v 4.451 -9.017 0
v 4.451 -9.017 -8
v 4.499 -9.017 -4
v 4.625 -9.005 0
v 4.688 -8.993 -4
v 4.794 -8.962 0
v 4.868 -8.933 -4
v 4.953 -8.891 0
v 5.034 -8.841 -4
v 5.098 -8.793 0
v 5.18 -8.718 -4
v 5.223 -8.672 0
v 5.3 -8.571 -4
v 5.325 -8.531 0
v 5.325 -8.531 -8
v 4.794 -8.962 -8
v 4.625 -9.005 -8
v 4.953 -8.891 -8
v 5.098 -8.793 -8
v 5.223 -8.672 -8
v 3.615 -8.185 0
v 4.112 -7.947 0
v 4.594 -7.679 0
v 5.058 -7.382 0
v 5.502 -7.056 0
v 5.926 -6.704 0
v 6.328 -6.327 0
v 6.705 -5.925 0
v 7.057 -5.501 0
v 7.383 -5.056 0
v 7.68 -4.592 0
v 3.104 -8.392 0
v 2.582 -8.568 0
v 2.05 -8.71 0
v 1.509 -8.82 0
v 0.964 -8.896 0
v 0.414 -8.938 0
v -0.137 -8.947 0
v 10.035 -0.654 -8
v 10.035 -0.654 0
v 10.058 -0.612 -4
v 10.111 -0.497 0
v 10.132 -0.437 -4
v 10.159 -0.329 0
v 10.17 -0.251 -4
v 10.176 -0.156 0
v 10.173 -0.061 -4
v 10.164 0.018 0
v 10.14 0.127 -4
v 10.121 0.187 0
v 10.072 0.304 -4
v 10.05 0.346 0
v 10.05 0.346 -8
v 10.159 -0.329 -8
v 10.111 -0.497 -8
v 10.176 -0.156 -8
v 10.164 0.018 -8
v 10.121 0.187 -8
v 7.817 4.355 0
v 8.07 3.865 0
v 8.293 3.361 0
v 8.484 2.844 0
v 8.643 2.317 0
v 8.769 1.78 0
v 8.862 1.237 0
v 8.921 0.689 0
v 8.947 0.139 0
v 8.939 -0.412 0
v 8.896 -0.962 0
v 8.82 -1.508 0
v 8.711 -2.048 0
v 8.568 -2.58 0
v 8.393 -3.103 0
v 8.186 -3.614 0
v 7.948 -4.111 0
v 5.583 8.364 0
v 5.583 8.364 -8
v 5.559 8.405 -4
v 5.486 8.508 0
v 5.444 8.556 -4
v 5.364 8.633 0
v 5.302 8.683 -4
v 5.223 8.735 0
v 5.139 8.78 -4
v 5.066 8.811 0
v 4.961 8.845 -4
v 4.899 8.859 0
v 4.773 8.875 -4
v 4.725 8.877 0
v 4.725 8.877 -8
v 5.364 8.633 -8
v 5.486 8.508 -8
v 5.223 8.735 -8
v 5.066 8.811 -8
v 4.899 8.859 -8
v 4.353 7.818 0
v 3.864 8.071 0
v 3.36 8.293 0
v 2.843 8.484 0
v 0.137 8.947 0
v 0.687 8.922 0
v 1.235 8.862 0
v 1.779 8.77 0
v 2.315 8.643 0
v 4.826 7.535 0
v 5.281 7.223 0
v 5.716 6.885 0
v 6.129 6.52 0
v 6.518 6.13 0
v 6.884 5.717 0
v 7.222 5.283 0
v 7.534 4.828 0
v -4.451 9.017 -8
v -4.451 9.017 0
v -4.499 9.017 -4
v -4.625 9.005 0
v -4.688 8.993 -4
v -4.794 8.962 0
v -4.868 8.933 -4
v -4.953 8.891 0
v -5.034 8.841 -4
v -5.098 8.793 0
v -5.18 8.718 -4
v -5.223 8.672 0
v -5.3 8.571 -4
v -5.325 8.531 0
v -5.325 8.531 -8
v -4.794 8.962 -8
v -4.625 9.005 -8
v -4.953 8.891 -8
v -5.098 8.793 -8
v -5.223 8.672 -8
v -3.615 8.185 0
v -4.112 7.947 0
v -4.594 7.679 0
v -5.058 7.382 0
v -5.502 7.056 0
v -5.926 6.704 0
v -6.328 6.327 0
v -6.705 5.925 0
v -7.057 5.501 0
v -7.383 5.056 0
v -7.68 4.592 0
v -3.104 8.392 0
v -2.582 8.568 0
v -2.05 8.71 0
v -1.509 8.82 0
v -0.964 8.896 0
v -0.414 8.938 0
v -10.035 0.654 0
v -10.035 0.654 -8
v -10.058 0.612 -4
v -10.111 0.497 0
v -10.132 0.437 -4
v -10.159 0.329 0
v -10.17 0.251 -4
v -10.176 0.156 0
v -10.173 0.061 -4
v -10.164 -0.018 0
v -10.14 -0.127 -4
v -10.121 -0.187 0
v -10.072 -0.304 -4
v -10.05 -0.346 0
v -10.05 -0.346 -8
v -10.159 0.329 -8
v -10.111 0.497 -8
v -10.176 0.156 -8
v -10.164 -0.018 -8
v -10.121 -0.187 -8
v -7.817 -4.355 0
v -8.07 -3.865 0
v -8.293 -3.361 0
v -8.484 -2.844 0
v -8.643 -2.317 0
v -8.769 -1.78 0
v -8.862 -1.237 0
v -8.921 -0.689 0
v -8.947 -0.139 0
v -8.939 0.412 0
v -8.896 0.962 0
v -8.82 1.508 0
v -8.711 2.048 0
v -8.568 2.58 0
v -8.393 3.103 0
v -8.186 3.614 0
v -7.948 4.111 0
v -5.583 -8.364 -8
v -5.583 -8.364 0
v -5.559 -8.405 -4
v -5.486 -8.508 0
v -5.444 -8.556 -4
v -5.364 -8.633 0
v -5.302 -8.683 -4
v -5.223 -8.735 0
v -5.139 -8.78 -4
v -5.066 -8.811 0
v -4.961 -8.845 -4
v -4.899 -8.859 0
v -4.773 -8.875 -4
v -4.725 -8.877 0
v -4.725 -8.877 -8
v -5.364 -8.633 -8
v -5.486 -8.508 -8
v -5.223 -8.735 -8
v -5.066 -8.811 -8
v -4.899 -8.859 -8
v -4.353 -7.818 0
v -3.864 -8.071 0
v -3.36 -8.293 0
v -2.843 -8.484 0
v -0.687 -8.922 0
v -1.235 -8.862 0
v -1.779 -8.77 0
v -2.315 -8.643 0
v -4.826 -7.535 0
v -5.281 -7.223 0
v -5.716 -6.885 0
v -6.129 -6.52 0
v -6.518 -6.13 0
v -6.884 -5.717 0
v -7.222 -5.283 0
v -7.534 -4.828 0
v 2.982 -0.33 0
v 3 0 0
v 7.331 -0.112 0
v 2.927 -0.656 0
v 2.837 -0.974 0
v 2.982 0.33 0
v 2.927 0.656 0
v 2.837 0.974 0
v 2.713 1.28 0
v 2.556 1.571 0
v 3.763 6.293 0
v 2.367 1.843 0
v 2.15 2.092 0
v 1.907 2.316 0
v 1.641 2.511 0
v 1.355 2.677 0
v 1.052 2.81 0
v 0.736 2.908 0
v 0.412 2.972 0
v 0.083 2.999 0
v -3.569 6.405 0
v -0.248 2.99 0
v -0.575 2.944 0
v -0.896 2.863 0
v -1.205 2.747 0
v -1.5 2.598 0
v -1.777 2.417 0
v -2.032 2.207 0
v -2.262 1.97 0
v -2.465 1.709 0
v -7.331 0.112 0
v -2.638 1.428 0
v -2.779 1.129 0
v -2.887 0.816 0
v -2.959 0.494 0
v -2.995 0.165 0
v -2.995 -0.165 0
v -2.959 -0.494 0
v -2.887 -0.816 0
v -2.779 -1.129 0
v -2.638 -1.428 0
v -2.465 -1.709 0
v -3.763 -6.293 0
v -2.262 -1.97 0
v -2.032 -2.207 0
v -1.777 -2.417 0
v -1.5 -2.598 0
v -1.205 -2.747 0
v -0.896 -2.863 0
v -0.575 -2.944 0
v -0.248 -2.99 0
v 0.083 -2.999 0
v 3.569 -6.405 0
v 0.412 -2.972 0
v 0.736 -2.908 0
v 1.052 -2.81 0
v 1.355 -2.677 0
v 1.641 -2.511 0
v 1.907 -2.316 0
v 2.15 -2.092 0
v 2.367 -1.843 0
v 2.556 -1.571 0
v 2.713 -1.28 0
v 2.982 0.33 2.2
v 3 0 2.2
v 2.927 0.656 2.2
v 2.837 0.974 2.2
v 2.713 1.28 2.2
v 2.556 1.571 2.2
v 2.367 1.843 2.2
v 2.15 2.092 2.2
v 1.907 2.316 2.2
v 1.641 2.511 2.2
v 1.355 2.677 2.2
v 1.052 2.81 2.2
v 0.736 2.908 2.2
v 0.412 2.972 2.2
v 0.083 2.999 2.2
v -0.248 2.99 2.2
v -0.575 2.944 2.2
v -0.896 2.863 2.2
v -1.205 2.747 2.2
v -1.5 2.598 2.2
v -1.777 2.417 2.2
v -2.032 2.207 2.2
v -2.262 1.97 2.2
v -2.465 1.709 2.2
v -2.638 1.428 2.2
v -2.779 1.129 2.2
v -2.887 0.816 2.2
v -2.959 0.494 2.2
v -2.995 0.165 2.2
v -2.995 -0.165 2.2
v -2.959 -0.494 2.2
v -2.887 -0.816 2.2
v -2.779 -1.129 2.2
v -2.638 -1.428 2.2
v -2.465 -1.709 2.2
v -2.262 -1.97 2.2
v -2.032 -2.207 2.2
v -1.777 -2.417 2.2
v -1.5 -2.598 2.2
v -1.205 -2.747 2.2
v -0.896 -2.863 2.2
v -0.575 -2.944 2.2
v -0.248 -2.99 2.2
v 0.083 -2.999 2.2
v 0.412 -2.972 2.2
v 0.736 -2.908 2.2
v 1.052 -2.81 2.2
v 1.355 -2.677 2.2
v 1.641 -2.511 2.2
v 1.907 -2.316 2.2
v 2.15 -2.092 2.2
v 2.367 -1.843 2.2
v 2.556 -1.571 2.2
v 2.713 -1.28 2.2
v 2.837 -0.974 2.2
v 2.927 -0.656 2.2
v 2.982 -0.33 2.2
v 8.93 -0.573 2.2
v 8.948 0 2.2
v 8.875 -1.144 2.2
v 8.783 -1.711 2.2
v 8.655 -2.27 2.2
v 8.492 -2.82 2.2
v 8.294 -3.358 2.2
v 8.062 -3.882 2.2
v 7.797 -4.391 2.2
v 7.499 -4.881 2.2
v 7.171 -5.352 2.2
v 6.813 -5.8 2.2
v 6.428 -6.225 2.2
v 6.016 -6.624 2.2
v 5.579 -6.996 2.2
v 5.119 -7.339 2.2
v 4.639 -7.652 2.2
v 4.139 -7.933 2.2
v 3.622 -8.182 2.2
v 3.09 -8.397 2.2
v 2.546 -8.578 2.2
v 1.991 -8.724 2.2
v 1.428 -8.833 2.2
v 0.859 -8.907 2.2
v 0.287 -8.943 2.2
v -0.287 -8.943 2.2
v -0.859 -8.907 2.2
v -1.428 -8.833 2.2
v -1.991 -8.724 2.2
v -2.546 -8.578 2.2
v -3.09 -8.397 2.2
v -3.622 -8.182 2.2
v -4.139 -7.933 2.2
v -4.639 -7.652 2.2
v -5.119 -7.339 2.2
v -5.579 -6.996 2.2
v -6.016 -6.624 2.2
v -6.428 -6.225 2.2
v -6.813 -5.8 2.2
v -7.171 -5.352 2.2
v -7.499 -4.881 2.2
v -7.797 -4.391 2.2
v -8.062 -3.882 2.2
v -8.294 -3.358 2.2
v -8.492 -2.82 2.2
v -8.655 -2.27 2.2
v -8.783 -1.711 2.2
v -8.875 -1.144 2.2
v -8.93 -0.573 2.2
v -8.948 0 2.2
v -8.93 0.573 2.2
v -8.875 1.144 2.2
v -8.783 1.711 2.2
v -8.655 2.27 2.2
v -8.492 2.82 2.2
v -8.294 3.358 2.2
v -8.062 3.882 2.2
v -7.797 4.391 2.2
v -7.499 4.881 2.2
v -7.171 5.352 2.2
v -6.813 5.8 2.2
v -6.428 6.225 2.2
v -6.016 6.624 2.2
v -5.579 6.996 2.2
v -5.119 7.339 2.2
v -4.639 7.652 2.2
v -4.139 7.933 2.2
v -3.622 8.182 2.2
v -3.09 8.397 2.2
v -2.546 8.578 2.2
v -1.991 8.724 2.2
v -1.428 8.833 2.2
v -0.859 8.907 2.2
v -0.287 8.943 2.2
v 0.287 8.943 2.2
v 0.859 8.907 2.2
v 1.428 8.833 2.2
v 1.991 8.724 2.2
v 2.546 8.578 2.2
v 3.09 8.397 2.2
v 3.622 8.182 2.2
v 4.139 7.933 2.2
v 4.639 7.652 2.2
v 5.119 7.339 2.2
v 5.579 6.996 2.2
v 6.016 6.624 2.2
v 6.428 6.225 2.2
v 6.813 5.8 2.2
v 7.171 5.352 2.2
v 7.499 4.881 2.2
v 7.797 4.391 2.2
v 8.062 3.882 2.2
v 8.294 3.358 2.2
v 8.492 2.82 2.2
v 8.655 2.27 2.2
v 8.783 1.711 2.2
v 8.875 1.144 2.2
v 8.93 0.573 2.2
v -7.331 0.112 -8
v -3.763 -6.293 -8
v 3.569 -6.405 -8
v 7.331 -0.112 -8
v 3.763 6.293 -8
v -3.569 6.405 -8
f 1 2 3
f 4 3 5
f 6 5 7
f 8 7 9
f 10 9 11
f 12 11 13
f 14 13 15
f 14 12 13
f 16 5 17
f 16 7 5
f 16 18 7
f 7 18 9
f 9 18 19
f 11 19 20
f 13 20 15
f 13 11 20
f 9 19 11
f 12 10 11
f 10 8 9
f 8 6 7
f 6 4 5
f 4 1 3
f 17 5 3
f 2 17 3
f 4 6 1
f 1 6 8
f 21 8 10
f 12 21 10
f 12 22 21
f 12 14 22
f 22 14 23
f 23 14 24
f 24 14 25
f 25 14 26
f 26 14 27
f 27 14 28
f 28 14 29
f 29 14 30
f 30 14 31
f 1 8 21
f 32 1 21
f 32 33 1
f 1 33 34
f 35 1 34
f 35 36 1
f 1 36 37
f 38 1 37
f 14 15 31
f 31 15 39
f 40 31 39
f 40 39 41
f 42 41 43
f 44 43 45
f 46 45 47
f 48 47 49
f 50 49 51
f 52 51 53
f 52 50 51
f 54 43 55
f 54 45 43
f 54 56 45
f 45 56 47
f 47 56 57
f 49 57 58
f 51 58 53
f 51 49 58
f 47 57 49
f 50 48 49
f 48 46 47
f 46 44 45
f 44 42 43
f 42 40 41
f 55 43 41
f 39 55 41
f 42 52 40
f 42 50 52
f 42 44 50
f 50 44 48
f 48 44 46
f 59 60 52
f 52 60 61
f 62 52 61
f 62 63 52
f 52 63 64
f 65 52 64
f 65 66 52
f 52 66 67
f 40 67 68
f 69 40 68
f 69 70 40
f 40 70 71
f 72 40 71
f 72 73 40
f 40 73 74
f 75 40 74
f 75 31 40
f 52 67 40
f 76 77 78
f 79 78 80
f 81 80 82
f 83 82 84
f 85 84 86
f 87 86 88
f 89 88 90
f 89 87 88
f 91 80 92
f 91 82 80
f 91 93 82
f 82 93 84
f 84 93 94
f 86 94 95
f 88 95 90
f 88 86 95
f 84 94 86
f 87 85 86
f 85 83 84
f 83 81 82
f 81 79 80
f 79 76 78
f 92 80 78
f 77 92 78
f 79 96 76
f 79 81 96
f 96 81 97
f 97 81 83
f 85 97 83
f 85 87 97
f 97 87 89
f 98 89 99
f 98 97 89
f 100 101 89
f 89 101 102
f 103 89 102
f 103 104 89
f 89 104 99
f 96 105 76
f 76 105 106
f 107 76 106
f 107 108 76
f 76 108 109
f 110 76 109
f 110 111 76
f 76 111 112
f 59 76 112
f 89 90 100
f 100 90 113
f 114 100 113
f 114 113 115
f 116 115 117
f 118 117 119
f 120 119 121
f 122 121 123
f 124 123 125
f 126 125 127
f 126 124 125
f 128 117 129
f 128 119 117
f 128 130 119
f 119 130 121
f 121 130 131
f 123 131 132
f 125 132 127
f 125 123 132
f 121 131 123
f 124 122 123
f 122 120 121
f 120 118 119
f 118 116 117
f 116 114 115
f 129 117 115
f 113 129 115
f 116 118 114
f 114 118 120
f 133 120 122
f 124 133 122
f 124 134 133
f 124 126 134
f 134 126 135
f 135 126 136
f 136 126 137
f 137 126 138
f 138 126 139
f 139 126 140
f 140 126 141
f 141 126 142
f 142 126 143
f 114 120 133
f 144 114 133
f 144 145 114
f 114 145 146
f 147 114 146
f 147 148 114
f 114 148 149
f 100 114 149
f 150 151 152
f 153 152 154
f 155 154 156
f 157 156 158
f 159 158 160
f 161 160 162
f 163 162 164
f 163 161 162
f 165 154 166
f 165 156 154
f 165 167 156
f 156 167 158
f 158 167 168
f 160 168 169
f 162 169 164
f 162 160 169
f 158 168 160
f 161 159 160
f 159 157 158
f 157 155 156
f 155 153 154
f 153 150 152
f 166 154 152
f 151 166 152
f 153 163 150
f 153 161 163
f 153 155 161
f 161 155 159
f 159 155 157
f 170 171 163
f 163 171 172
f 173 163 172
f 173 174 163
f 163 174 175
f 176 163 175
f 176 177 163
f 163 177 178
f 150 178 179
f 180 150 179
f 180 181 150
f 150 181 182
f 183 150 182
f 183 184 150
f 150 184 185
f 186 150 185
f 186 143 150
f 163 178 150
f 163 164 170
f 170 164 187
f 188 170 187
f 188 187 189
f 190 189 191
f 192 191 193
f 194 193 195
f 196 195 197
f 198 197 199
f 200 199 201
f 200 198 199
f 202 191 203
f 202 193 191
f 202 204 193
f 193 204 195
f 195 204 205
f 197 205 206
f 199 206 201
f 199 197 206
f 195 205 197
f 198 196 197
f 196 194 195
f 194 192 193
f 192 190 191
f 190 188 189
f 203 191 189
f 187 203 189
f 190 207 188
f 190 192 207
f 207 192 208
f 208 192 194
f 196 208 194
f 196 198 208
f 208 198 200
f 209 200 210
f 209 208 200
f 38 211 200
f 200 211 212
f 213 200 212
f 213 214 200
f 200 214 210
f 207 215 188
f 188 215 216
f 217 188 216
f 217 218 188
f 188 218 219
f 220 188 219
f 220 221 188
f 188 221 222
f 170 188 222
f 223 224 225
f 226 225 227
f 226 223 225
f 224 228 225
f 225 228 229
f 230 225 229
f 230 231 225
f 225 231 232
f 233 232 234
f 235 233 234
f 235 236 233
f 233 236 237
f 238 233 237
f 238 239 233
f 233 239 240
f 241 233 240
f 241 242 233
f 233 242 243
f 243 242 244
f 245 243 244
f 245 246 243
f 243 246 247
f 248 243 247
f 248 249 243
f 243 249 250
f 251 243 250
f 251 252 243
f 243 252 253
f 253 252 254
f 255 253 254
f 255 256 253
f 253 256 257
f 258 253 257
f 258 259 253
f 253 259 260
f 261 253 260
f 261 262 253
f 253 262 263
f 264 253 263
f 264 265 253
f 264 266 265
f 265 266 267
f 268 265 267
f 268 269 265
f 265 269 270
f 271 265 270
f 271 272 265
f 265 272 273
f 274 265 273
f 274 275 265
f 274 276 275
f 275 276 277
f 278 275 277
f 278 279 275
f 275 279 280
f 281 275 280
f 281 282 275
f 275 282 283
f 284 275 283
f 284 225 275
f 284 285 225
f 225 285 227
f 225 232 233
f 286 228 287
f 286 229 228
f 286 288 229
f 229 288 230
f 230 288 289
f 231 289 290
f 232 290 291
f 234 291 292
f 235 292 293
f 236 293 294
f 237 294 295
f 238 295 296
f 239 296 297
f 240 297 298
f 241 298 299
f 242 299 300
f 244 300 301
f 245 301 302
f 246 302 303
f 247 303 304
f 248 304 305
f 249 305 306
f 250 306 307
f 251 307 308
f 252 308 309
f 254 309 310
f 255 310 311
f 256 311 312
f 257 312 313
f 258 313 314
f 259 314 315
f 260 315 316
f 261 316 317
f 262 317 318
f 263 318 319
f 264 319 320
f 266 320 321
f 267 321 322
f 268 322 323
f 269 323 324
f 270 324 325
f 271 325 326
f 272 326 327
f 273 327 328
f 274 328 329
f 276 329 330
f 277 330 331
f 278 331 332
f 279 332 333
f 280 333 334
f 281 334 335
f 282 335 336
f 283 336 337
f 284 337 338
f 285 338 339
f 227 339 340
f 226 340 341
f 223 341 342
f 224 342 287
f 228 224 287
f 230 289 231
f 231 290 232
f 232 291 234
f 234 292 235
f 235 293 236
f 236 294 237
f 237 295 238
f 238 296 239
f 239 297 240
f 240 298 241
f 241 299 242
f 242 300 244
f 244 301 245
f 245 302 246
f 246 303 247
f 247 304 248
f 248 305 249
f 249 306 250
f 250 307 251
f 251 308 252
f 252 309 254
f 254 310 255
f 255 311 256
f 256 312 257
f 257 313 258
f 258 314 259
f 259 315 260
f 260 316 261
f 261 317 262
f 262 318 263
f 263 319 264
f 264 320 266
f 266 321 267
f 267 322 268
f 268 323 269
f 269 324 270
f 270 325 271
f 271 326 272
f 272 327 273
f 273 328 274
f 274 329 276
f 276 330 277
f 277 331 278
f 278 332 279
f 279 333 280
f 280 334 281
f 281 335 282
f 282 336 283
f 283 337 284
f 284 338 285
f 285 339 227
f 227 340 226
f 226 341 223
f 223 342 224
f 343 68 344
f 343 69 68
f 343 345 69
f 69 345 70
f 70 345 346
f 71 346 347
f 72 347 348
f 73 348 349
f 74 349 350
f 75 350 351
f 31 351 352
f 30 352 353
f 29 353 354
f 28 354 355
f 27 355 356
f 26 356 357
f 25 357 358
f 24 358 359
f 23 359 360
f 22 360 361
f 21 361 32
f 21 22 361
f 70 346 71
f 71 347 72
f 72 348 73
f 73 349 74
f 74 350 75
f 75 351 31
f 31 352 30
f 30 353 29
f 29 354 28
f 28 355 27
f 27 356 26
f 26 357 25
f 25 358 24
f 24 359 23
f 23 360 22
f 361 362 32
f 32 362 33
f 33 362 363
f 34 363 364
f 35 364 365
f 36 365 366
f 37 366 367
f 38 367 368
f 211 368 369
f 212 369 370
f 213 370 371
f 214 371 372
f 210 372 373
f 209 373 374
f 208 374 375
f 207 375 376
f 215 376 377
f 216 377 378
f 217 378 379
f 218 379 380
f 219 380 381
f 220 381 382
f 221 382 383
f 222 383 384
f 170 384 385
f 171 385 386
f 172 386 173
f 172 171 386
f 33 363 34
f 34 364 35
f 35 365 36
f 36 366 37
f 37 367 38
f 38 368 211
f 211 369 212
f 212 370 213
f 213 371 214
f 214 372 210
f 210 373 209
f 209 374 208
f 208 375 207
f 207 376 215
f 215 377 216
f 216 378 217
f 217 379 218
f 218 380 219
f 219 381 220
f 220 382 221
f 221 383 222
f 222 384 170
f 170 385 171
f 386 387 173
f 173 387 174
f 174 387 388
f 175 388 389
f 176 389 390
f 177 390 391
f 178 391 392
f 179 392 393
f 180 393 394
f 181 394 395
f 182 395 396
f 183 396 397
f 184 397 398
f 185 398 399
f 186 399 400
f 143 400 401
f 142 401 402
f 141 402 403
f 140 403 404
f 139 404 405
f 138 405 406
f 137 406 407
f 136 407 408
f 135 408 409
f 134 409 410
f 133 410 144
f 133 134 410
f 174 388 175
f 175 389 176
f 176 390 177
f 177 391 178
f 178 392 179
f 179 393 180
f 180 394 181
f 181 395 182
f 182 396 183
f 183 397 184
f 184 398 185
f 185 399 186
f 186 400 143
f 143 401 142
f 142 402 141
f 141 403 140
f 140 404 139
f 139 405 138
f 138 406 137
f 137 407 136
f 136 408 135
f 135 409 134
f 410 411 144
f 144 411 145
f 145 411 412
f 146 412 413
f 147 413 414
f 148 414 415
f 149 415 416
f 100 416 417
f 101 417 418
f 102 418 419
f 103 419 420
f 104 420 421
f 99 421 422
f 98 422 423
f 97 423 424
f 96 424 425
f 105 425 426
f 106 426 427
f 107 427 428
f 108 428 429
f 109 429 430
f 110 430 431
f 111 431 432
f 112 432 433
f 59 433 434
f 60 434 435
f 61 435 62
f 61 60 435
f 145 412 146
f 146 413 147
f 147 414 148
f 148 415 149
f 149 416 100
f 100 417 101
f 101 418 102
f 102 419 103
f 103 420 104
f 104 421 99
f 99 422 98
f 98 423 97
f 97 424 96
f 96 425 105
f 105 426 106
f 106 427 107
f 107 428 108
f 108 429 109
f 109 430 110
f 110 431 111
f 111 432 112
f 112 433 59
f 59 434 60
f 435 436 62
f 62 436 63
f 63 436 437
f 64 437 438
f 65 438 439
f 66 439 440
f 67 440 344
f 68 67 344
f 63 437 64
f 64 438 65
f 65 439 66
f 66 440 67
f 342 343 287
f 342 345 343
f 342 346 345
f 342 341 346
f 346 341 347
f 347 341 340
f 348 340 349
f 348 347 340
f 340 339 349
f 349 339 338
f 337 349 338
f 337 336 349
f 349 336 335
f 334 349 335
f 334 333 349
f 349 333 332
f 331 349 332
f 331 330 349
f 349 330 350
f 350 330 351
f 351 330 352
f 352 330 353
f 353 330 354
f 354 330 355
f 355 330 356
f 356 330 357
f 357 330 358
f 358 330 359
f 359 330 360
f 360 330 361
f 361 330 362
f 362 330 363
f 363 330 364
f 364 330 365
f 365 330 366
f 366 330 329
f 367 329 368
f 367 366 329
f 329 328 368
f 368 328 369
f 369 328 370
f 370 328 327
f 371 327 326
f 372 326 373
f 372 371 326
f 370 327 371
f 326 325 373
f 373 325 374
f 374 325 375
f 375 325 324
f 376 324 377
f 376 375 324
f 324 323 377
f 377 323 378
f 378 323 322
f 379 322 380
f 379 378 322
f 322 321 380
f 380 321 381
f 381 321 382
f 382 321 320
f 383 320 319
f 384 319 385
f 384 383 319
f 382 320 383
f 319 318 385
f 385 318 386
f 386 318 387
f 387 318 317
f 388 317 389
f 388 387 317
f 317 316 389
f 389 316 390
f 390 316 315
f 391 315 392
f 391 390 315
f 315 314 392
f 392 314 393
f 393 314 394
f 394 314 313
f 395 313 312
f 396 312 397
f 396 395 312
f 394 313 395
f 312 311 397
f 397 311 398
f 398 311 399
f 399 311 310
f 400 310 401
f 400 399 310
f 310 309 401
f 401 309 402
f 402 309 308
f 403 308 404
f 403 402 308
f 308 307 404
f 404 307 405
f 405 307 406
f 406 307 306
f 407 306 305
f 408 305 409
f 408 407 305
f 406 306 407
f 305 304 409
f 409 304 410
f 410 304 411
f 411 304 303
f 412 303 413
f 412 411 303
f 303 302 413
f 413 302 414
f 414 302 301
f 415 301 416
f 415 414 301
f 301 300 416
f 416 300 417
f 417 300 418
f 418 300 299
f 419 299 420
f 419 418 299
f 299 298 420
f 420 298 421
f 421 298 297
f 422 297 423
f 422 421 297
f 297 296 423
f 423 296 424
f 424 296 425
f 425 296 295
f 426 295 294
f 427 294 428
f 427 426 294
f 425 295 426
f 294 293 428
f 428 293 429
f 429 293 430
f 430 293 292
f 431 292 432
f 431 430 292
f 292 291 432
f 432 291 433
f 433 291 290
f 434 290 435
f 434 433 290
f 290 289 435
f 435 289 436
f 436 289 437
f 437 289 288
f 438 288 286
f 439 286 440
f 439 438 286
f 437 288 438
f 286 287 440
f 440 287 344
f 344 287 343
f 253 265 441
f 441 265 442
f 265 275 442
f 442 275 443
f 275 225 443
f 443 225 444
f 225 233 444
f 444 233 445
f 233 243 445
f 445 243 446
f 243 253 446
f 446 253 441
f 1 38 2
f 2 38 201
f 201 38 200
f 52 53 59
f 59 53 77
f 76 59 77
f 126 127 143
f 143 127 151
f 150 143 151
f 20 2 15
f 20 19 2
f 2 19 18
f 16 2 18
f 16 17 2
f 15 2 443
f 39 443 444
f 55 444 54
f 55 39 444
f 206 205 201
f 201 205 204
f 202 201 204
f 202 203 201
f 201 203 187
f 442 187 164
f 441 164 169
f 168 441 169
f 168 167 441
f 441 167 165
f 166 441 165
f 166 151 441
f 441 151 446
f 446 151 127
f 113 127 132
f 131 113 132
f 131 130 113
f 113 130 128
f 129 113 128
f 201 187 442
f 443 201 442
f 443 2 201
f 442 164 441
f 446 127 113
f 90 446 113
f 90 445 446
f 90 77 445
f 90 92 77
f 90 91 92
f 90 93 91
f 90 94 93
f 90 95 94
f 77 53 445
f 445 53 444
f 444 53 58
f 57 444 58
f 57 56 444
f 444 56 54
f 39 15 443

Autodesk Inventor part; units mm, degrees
ref_plane "YZ Plane" through (0, 0, 0) normal (1, 0, 0) x (0, 1, 0)
ref_plane "XZ Plane" through (0, 0, 0) normal (0, 1, 0) x (-1, 0, 0)
ref_plane "XY Plane" through (0, 0, 0) normal (0, 0, 1) x (1, 0, 0)
sketch "Sketch2" plane through (0, 0, 0) normal (0, 0, 1) x (1, 0, 0)
  line L0 (3.7629, 6.2932) -> (-3.5686, 6.4054) projected
  line L1 (-3.5686, 6.4054) -> (-7.3315, 0.1122) projected
  line L2 (-7.3315, 0.1122) -> (-3.7629, -6.2932) projected
  line L3 (-3.7629, -6.2932) -> (3.5686, -6.4054) projected
  line L4 (3.5686, -6.4054) -> (7.3315, -0.1122) projected
  line L5 (7.3315, -0.1122) -> (3.7629, 6.2932) projected
  line L6 (3.5686, -6.4054) -> (-3.5686, 6.4054)
  line L7 (-3.5686, 6.4054) -> (-5.0286, 9.0261)
  line L8 (7.3315, -0.1122) -> (-7.3315, 0.1122)
  line L9 (-5.0286, 9.0261) -> (5.3025, 8.868)
  line L10 (5.3025, 8.868) -> (10.3311, -0.1581)
  line L11 (10.3311, -0.1581) -> (5.0286, -9.0261)
  line L12 (5.0286, -9.0261) -> (-5.3025, -8.868)
  line L13 (-5.3025, -8.868) -> (-10.3311, 0.1581)
  line L14 (-10.3311, 0.1581) -> (-5.0286, 9.0261)
  line L15 (-3.5686, 6.4054) -> (3.7629, 6.2932)
  line L16 (3.7629, 6.2932) -> (7.3315, -0.1122)
  line L17 (7.3315, -0.1122) -> (3.5686, -6.4054)
  line L18 (3.5686, -6.4054) -> (-3.7629, -6.2932)
  line L19 (-3.7629, -6.2932) -> (-7.3315, 0.1122)
  line L20 (-7.3315, 0.1122) -> (-3.5686, 6.4054)
  point P0 (0, 0)
  point P1 (0, 0)
  point P2 (0, 0)
  dimension "d0" = 3
extrude "Extrusion1" add sketch "Sketch2" against normal blind 8
sketch "Sketch3" plane through (0, 0, 0) normal (0, 0, 1) x (1, 0, 0)
  line L0 (-5.0286, 9.0261) -> (-10.3311, 0.1581) projected
  line L1 (-5.3025, -8.868) -> (5.0286, -9.0261) projected
  line L2 (10.3311, -0.1581) -> (5.3025, 8.868) projected
  circle A0 centre (0, 0) radius 8.9481
  circle A1 centre (0, 0) radius 3
  point P0 (0, 0)
  dimension "d3" = 6
extrude "Extrusion2" add sketch "Sketch3" along normal blind 2.2
fillet "Fillet1" radius 1 6 edges at (-5.3025, -8.868, -4) (-10.3311, 0.1581, -4) (-5.0286, 9.0261, -4) (5.3025, 8.868, -4) (10.3311, -0.1581, -4) (5.0286, -9.0261, -4)
properties part number "MagnetHolder 6mm"
